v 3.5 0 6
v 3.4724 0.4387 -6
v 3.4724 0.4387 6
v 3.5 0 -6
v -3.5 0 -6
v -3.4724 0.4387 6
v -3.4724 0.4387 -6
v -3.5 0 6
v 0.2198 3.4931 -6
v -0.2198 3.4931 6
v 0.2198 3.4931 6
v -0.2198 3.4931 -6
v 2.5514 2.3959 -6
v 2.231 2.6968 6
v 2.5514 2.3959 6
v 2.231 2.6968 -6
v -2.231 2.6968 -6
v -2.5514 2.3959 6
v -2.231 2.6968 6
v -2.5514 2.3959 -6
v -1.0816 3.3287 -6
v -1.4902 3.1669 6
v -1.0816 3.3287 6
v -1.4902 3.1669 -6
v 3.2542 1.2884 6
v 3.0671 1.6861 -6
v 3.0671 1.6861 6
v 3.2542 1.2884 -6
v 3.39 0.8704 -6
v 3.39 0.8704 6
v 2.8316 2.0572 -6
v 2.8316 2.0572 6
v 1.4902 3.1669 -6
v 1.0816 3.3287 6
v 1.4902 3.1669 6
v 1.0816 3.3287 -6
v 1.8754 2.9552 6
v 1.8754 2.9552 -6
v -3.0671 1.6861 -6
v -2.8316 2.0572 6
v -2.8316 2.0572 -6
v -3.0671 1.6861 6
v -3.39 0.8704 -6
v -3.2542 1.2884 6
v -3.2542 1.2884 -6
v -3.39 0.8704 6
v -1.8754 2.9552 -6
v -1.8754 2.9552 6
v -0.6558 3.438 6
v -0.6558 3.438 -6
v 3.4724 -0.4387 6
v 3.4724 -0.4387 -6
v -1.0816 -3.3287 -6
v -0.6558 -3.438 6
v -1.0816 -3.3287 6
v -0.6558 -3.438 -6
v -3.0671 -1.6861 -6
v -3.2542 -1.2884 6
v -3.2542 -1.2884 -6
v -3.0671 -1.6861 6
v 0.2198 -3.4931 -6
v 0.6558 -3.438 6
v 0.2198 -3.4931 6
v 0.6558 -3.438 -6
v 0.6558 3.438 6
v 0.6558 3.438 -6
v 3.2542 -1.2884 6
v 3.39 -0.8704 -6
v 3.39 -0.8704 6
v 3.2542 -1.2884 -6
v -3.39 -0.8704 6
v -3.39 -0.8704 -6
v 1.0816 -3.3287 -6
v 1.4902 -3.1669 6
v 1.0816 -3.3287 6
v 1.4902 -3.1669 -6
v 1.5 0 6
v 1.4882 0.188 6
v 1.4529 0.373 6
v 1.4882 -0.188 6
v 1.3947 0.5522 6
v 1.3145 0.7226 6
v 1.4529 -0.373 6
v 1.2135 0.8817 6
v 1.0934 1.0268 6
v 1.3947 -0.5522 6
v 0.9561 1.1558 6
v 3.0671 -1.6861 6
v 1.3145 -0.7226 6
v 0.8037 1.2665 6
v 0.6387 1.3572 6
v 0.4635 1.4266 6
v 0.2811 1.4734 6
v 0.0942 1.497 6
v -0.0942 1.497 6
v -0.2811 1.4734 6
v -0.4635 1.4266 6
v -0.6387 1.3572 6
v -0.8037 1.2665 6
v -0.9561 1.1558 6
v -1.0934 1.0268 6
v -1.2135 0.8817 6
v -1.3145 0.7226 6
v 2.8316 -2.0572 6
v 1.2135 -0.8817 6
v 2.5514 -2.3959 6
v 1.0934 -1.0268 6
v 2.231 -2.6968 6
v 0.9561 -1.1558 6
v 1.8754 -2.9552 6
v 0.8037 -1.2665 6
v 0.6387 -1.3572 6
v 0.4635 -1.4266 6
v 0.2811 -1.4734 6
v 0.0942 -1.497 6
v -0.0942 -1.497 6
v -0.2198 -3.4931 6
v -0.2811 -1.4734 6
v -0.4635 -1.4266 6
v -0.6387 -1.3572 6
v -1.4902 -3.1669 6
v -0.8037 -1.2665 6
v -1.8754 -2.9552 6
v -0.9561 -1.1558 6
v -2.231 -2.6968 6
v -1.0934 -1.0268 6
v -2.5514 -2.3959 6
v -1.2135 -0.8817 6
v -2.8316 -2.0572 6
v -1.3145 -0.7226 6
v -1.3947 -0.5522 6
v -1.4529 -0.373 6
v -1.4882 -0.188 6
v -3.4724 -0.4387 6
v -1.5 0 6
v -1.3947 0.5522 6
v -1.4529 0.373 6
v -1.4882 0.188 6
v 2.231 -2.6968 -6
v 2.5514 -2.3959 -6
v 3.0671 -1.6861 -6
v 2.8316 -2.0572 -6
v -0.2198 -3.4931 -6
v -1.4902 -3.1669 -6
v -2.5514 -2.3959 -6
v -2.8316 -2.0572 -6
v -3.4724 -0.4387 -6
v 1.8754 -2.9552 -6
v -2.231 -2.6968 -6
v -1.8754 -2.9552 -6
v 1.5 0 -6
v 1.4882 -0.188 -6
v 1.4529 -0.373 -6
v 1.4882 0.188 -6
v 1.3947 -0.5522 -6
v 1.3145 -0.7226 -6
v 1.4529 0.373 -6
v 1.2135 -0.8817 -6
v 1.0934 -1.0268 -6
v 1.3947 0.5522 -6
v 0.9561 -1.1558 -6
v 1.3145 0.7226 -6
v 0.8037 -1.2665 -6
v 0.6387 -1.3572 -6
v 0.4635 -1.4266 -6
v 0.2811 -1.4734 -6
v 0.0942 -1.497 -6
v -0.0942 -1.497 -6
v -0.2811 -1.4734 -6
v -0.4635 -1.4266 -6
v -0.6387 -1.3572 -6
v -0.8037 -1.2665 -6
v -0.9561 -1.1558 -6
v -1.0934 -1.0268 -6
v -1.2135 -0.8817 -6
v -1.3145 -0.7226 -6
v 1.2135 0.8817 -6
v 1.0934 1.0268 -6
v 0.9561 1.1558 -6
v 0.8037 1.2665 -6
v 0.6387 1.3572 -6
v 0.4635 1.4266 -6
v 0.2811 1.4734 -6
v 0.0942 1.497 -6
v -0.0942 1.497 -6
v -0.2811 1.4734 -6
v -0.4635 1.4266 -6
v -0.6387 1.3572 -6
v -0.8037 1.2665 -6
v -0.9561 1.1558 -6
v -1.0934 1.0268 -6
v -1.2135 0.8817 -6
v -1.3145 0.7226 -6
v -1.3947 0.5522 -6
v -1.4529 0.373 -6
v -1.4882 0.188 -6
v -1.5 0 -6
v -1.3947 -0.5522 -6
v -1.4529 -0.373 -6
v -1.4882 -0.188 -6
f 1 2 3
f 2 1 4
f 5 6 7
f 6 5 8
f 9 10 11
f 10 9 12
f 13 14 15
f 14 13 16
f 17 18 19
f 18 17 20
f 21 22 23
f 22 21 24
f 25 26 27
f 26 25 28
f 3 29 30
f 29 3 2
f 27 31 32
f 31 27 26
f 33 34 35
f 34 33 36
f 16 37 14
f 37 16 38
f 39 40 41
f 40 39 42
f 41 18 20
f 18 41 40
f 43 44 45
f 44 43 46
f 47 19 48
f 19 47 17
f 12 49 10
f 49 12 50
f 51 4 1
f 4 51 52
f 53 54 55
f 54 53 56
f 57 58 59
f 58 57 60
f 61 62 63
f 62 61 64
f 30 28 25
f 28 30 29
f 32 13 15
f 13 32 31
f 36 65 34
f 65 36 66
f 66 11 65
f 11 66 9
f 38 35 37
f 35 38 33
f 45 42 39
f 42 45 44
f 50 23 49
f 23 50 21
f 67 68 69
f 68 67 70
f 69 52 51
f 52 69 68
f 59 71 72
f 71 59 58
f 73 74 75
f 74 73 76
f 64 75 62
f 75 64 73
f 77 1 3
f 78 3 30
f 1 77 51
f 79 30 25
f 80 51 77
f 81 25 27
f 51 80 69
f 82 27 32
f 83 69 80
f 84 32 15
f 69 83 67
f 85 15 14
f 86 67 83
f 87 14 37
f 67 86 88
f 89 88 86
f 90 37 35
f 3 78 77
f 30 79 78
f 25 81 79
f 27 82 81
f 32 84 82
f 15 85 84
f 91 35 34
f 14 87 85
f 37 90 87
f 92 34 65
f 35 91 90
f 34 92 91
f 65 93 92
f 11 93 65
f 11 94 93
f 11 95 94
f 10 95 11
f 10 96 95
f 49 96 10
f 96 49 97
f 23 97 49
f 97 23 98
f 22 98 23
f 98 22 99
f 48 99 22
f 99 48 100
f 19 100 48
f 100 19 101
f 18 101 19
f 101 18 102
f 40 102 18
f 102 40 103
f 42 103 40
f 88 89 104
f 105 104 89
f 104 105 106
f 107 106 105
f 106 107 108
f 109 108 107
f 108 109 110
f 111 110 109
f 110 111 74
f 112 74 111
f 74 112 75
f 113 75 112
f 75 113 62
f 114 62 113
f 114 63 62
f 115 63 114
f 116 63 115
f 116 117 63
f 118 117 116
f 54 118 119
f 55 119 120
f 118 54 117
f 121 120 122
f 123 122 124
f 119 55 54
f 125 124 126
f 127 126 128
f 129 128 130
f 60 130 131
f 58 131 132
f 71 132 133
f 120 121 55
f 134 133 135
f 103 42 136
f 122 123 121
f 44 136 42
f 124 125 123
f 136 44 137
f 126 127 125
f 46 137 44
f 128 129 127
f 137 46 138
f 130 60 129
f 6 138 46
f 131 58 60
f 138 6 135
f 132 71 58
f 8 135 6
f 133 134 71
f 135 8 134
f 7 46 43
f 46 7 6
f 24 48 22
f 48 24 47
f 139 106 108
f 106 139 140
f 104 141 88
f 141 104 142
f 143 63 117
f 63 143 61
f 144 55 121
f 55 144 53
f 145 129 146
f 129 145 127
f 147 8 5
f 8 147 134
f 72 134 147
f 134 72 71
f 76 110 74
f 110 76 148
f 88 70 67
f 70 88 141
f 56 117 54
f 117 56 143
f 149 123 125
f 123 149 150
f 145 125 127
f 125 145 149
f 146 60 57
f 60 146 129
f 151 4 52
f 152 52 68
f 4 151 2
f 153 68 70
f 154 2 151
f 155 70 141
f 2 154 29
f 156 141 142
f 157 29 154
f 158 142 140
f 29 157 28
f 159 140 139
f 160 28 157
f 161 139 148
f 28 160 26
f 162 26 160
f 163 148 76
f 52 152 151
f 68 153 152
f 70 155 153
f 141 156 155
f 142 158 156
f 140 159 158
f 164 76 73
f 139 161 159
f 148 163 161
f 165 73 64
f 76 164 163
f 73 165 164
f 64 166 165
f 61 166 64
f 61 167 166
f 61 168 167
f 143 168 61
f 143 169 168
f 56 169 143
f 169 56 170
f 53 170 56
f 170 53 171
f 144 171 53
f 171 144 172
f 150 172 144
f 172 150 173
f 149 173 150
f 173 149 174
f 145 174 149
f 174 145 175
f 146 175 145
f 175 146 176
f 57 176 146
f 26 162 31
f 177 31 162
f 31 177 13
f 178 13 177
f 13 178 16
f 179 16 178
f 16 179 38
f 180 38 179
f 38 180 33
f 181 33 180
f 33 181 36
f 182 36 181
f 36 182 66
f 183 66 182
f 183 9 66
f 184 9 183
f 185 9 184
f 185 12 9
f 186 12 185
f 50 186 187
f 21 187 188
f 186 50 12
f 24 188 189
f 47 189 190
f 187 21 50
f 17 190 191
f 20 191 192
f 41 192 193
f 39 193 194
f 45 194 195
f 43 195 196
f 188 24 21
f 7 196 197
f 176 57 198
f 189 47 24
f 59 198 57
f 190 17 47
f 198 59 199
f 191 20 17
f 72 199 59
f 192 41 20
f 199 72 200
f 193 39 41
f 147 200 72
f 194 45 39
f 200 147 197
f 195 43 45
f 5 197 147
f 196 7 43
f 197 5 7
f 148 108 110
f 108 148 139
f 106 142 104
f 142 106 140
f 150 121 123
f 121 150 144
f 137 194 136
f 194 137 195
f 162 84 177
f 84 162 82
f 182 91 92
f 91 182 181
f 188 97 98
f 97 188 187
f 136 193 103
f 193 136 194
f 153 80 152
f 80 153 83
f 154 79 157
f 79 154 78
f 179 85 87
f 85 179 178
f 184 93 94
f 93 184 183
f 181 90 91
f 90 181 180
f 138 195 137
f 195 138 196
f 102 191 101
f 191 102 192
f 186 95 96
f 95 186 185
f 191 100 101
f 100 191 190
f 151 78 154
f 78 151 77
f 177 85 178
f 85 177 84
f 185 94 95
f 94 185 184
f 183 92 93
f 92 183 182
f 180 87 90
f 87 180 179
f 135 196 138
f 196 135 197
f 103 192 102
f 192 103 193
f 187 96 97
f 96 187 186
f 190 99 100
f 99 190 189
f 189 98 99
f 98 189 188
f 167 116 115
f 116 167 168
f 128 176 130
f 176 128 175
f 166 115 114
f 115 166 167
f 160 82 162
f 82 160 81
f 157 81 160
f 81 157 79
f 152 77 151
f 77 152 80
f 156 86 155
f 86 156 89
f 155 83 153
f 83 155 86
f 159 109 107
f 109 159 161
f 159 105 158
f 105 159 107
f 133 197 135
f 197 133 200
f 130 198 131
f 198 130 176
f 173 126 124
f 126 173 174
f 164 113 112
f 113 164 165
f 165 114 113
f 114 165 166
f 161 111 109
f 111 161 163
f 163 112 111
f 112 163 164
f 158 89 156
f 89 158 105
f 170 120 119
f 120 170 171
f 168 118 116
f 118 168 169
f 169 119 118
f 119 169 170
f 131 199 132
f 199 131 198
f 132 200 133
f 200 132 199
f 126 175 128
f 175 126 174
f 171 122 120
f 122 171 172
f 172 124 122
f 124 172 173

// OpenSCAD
$fn = 50;


difference() {
	union() {
		translate(v = [0, 0, -6.0000000000]) {
			cylinder(h = 12, r = 3.5000000000);
		}
	}
	union() {
		translate(v = [0, 0, -100.0000000000]) {
			cylinder(h = 200, r = 1.5000000000);
		}
	}
}
